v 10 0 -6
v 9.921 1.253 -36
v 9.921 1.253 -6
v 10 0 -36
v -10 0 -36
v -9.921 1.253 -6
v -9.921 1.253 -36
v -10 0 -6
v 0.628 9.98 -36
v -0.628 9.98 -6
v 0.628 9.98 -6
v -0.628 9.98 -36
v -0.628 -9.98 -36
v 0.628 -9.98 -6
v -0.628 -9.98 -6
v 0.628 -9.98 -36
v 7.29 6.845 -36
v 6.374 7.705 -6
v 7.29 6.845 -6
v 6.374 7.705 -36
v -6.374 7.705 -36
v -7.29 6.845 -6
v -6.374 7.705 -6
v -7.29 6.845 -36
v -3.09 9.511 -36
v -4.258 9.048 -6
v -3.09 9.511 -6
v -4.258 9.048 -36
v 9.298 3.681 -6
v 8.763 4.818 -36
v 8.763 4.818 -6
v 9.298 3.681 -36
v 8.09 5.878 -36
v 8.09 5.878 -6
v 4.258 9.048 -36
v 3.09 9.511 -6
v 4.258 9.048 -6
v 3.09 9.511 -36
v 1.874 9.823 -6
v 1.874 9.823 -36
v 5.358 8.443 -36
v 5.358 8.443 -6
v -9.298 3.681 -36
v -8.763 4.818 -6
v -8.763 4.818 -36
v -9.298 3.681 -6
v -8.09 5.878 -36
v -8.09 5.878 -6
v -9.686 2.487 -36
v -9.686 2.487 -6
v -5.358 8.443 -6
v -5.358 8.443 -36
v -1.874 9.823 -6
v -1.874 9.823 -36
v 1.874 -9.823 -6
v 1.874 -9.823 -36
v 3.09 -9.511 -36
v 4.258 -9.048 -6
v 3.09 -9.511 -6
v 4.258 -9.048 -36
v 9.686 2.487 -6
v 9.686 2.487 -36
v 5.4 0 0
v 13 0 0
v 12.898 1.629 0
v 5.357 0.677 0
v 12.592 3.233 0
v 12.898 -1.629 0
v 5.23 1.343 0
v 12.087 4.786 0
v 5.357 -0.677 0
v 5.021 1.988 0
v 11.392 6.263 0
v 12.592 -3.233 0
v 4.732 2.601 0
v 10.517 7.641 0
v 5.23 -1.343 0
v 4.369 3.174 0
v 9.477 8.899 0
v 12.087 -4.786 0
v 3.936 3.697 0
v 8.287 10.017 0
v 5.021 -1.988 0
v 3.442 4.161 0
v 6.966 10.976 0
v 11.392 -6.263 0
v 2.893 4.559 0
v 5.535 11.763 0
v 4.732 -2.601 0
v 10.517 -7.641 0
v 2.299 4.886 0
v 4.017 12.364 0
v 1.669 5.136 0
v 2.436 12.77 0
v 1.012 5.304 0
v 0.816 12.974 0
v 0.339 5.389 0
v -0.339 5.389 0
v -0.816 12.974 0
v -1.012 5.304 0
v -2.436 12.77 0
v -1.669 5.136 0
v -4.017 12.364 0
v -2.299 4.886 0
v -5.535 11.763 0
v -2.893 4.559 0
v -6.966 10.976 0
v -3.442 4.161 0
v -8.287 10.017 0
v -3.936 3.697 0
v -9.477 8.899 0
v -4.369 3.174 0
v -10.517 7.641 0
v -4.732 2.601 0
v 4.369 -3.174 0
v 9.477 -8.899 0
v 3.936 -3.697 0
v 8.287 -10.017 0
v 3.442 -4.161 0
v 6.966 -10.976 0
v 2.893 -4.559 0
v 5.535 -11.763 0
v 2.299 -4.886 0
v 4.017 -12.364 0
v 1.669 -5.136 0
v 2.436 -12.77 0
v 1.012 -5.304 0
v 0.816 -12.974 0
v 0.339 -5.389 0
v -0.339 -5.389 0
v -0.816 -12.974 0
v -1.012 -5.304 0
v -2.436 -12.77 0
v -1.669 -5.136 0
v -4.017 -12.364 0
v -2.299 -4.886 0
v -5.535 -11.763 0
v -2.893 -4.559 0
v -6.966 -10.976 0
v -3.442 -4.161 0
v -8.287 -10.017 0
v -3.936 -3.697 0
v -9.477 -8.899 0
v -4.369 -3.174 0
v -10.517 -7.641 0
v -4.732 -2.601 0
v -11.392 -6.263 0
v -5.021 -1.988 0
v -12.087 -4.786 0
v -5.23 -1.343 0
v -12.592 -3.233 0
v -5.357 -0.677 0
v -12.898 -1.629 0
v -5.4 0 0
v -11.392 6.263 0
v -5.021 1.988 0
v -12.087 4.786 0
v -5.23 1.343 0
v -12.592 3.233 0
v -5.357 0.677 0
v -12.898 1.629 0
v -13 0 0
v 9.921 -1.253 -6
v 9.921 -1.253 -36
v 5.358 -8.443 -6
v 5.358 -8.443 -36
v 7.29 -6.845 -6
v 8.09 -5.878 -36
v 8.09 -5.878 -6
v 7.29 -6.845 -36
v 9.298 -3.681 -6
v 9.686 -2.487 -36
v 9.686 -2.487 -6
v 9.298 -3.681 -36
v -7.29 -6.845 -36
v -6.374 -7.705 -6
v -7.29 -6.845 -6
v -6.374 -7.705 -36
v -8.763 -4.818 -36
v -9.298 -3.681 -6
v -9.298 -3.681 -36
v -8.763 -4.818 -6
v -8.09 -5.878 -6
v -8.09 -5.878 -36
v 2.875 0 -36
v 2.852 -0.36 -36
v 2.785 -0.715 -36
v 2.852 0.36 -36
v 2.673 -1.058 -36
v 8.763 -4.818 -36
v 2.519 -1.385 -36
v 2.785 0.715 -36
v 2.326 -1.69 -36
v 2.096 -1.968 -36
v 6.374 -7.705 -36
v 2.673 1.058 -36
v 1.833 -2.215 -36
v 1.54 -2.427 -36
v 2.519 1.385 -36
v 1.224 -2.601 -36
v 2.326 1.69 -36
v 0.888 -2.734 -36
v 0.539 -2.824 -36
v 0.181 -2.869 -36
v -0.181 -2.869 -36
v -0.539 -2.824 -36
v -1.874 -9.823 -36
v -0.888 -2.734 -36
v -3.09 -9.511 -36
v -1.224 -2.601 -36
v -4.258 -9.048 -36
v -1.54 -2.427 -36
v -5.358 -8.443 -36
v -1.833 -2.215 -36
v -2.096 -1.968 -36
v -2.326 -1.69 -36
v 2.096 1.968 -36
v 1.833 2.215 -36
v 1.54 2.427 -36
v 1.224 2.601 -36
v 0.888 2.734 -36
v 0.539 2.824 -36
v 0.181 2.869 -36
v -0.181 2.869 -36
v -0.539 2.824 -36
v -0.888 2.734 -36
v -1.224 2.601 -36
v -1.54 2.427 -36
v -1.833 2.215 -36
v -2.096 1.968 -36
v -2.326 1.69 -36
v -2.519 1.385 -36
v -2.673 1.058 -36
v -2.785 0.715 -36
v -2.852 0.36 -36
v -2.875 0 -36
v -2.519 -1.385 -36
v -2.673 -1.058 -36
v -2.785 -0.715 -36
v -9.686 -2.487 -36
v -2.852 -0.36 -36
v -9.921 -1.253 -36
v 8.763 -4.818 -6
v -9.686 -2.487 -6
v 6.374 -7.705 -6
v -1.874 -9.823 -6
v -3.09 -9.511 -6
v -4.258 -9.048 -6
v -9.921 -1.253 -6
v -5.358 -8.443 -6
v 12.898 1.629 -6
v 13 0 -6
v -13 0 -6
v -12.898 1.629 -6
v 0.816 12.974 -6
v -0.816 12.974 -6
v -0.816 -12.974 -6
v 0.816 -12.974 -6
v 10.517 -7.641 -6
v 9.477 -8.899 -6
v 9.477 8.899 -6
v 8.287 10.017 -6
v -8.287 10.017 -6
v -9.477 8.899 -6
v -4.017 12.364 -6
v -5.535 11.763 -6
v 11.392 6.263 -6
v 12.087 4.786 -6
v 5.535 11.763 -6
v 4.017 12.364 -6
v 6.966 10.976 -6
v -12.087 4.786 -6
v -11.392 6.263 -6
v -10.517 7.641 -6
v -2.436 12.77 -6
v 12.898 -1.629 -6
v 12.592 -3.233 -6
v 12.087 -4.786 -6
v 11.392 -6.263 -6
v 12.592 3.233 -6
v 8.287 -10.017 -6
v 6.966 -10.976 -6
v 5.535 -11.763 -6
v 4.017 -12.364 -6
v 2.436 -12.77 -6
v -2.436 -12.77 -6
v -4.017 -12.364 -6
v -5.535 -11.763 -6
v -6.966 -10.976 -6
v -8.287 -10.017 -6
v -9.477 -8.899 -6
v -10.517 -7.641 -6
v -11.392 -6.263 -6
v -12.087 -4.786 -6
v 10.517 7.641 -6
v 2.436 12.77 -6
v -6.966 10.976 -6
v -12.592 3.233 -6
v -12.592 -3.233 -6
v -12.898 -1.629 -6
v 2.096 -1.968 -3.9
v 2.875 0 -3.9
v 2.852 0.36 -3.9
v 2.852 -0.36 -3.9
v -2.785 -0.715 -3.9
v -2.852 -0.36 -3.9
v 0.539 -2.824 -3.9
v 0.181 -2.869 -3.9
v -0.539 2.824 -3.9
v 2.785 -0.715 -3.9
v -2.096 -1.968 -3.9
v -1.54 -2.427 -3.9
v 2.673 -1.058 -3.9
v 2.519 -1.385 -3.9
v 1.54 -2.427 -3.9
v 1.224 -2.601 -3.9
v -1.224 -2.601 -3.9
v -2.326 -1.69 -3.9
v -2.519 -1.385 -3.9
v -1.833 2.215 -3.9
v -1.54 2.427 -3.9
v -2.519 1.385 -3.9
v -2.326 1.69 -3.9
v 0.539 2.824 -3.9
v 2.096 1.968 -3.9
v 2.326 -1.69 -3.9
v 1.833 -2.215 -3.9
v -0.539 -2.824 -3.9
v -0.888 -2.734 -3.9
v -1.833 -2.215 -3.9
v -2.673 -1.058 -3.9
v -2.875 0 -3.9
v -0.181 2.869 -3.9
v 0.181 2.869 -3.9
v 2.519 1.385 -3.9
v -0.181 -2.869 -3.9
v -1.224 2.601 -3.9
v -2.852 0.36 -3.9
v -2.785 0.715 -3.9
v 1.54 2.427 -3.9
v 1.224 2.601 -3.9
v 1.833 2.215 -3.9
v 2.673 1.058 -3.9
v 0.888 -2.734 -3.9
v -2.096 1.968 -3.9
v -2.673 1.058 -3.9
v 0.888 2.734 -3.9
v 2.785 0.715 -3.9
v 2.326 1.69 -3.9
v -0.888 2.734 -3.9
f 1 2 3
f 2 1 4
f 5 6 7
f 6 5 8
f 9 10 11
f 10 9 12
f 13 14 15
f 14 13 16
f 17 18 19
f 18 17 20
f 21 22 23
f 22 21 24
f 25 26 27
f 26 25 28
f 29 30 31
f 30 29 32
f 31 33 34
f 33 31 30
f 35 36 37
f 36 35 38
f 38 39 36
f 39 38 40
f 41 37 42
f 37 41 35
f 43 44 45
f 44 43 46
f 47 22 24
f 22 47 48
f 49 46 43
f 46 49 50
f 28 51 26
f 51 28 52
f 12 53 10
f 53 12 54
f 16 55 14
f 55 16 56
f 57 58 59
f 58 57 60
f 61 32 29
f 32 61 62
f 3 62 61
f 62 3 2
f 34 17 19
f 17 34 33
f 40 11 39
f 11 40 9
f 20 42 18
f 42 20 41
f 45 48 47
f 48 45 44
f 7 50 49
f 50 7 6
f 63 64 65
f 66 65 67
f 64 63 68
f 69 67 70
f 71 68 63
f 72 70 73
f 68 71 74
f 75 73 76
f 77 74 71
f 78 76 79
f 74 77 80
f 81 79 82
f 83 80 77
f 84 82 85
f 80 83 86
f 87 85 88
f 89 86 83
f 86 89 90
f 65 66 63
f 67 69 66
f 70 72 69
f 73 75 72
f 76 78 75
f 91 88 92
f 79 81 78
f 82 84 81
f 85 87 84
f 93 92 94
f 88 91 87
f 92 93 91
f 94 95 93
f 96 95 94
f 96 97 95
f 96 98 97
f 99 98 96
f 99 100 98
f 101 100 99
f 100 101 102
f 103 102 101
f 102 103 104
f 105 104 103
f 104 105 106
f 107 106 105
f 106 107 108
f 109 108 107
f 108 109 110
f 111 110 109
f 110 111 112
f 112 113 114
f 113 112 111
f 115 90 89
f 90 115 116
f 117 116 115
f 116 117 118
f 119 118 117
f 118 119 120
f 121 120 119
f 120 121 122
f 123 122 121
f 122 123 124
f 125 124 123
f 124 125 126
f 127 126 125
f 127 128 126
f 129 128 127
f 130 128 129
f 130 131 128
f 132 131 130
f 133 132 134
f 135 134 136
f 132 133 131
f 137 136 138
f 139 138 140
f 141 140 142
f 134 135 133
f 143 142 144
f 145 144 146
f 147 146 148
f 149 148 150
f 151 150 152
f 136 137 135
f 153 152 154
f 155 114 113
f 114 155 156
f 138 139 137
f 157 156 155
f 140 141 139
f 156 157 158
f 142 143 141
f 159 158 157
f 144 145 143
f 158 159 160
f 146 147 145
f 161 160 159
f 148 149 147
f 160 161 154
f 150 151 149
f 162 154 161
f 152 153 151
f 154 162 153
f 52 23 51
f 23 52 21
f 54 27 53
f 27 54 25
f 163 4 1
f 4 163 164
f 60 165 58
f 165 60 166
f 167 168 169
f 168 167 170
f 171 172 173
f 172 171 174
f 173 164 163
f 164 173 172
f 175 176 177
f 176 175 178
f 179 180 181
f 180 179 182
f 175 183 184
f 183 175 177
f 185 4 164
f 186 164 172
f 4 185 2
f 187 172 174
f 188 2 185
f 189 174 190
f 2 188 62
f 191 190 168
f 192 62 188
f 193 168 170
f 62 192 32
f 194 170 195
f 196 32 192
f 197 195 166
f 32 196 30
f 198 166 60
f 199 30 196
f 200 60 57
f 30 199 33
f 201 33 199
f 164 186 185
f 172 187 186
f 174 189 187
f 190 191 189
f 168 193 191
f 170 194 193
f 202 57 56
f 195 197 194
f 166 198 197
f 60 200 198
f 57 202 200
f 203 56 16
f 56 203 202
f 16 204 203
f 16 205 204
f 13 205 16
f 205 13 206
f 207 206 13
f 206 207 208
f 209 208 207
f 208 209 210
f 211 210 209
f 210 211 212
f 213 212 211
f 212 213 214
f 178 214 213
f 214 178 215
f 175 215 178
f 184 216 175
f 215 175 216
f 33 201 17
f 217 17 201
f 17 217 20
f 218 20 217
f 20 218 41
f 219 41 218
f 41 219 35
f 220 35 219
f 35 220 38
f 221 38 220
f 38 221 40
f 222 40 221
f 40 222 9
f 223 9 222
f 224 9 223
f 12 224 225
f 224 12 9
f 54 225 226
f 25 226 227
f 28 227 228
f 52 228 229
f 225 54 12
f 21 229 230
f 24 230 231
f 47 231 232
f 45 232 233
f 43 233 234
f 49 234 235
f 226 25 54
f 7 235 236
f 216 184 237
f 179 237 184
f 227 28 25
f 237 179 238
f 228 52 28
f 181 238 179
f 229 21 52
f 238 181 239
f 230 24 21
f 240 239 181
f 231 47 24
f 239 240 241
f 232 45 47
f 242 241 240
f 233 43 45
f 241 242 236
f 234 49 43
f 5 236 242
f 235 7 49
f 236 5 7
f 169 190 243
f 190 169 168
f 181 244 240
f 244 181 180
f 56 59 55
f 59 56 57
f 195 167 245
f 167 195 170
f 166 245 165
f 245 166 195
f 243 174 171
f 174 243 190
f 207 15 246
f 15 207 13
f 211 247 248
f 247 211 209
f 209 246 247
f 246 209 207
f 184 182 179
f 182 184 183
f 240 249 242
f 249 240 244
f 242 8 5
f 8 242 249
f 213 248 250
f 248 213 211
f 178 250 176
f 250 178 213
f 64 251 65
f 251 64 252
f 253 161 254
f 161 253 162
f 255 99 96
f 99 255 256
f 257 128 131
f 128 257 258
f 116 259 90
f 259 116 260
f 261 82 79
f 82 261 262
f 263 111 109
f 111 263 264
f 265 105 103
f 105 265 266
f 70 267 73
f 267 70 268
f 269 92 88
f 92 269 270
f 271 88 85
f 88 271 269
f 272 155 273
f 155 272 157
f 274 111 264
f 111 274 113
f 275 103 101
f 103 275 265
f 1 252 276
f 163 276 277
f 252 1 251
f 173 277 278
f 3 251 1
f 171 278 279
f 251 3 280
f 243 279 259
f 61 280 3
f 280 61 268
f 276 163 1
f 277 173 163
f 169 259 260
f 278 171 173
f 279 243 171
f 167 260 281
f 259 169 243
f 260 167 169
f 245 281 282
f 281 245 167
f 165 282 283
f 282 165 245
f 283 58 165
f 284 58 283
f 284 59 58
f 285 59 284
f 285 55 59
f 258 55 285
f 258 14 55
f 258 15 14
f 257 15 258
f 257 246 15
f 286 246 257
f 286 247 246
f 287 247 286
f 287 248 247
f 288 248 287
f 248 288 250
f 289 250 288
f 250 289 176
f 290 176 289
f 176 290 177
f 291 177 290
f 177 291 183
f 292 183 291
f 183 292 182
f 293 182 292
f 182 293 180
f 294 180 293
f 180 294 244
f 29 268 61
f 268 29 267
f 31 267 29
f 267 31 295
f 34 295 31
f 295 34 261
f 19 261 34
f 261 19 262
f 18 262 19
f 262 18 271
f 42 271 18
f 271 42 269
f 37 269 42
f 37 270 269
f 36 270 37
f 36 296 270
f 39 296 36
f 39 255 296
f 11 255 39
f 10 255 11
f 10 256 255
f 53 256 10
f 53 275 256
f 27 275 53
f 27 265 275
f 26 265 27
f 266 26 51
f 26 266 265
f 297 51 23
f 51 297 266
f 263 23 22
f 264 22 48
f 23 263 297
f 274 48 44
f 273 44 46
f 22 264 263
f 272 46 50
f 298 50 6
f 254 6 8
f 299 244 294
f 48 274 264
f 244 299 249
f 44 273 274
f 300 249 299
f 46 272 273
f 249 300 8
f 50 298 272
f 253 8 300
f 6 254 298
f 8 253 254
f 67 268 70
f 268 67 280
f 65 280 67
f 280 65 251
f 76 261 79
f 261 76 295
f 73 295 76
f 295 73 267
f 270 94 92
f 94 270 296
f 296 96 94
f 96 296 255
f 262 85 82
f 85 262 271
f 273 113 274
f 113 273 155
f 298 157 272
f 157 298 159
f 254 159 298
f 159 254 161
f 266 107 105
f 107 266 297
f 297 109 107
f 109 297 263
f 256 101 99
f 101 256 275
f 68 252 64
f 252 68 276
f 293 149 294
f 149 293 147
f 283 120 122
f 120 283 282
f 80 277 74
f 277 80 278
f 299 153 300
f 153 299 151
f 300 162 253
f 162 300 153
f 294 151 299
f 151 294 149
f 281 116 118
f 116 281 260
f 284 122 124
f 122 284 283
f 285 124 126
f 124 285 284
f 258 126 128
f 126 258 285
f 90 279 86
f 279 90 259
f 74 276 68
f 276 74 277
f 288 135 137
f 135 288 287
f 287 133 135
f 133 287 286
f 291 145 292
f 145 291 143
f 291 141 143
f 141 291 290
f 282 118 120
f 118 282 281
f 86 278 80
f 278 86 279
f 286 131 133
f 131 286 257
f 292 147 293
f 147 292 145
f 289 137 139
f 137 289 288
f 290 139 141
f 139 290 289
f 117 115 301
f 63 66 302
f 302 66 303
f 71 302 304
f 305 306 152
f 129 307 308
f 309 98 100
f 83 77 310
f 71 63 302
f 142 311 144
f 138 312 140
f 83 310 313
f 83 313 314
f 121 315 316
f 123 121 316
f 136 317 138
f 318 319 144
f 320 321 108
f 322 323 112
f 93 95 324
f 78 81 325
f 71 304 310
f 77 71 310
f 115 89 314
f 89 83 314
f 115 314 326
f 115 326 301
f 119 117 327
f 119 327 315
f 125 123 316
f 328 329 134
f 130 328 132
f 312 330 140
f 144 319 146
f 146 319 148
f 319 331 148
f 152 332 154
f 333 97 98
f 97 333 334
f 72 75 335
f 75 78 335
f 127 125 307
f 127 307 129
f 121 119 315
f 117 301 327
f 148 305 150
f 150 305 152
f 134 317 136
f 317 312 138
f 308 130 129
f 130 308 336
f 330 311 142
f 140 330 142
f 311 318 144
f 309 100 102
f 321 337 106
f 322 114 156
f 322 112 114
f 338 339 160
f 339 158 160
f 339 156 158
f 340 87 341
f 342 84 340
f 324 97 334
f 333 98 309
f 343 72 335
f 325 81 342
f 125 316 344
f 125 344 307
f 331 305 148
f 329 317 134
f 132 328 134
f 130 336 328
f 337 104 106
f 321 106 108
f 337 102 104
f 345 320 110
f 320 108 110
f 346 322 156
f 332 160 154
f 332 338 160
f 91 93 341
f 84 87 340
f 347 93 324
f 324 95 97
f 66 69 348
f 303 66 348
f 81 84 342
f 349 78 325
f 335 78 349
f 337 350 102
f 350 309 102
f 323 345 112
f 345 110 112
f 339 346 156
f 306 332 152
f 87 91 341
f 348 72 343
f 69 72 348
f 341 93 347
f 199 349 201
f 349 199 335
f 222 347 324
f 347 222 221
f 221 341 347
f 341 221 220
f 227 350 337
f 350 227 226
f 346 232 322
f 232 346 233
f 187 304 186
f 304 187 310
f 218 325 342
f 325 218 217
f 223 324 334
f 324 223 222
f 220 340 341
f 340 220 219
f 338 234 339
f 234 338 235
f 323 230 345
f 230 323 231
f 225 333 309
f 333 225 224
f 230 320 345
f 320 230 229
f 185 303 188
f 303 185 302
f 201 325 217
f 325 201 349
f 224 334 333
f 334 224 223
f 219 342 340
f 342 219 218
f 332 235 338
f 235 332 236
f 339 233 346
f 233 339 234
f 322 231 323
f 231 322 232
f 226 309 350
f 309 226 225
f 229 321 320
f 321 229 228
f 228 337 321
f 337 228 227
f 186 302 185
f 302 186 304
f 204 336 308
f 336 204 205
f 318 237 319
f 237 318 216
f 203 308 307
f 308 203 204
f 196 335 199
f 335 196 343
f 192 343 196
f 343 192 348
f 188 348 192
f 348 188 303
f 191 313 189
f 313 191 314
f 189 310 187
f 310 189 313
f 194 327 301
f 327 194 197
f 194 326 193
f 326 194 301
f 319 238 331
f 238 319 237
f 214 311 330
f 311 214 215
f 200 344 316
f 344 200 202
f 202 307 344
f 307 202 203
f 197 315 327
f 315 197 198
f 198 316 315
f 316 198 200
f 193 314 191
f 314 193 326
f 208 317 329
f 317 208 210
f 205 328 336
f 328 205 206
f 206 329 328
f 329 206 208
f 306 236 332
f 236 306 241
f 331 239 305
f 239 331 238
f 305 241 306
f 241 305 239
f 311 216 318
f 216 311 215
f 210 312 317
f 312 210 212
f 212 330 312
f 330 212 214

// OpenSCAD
$fn = 50;


difference() {
	union() {
		translate(v = [0, 0, -36.0000000000]) {
			cylinder(h = 36, r = 10.0000000000);
		}
		translate(v = [0, 0, -6.0000000000]) {
			cylinder(h = 6, r = 13.0000000000);
		}
	}
	union() {
		translate(v = [0, 0, 0]) {
			rotate(a = [0, 0, 0]) {
				difference() {
					union() {
						#translate(v = [0, 0, -36.0000000000]) {
							cylinder(h = 36, r = 2.6000000000);
						}
						#translate(v = [0, 0, -3.9000000000]) {
							cylinder(h = 3.9000000000, r = 10.0000000000, r1 = 2.8750000000, r2 = 5.4000000000);
						}
						#translate(v = [0, 0, -36.0000000000]) {
							cylinder(h = 36, r = 2.8750000000);
						}
						#translate(v = [0, 0, -36.0000000000]) {
							cylinder(h = 36, r = 2.6000000000);
						}
					}
					union();
				}
			}
		}
	}
}
